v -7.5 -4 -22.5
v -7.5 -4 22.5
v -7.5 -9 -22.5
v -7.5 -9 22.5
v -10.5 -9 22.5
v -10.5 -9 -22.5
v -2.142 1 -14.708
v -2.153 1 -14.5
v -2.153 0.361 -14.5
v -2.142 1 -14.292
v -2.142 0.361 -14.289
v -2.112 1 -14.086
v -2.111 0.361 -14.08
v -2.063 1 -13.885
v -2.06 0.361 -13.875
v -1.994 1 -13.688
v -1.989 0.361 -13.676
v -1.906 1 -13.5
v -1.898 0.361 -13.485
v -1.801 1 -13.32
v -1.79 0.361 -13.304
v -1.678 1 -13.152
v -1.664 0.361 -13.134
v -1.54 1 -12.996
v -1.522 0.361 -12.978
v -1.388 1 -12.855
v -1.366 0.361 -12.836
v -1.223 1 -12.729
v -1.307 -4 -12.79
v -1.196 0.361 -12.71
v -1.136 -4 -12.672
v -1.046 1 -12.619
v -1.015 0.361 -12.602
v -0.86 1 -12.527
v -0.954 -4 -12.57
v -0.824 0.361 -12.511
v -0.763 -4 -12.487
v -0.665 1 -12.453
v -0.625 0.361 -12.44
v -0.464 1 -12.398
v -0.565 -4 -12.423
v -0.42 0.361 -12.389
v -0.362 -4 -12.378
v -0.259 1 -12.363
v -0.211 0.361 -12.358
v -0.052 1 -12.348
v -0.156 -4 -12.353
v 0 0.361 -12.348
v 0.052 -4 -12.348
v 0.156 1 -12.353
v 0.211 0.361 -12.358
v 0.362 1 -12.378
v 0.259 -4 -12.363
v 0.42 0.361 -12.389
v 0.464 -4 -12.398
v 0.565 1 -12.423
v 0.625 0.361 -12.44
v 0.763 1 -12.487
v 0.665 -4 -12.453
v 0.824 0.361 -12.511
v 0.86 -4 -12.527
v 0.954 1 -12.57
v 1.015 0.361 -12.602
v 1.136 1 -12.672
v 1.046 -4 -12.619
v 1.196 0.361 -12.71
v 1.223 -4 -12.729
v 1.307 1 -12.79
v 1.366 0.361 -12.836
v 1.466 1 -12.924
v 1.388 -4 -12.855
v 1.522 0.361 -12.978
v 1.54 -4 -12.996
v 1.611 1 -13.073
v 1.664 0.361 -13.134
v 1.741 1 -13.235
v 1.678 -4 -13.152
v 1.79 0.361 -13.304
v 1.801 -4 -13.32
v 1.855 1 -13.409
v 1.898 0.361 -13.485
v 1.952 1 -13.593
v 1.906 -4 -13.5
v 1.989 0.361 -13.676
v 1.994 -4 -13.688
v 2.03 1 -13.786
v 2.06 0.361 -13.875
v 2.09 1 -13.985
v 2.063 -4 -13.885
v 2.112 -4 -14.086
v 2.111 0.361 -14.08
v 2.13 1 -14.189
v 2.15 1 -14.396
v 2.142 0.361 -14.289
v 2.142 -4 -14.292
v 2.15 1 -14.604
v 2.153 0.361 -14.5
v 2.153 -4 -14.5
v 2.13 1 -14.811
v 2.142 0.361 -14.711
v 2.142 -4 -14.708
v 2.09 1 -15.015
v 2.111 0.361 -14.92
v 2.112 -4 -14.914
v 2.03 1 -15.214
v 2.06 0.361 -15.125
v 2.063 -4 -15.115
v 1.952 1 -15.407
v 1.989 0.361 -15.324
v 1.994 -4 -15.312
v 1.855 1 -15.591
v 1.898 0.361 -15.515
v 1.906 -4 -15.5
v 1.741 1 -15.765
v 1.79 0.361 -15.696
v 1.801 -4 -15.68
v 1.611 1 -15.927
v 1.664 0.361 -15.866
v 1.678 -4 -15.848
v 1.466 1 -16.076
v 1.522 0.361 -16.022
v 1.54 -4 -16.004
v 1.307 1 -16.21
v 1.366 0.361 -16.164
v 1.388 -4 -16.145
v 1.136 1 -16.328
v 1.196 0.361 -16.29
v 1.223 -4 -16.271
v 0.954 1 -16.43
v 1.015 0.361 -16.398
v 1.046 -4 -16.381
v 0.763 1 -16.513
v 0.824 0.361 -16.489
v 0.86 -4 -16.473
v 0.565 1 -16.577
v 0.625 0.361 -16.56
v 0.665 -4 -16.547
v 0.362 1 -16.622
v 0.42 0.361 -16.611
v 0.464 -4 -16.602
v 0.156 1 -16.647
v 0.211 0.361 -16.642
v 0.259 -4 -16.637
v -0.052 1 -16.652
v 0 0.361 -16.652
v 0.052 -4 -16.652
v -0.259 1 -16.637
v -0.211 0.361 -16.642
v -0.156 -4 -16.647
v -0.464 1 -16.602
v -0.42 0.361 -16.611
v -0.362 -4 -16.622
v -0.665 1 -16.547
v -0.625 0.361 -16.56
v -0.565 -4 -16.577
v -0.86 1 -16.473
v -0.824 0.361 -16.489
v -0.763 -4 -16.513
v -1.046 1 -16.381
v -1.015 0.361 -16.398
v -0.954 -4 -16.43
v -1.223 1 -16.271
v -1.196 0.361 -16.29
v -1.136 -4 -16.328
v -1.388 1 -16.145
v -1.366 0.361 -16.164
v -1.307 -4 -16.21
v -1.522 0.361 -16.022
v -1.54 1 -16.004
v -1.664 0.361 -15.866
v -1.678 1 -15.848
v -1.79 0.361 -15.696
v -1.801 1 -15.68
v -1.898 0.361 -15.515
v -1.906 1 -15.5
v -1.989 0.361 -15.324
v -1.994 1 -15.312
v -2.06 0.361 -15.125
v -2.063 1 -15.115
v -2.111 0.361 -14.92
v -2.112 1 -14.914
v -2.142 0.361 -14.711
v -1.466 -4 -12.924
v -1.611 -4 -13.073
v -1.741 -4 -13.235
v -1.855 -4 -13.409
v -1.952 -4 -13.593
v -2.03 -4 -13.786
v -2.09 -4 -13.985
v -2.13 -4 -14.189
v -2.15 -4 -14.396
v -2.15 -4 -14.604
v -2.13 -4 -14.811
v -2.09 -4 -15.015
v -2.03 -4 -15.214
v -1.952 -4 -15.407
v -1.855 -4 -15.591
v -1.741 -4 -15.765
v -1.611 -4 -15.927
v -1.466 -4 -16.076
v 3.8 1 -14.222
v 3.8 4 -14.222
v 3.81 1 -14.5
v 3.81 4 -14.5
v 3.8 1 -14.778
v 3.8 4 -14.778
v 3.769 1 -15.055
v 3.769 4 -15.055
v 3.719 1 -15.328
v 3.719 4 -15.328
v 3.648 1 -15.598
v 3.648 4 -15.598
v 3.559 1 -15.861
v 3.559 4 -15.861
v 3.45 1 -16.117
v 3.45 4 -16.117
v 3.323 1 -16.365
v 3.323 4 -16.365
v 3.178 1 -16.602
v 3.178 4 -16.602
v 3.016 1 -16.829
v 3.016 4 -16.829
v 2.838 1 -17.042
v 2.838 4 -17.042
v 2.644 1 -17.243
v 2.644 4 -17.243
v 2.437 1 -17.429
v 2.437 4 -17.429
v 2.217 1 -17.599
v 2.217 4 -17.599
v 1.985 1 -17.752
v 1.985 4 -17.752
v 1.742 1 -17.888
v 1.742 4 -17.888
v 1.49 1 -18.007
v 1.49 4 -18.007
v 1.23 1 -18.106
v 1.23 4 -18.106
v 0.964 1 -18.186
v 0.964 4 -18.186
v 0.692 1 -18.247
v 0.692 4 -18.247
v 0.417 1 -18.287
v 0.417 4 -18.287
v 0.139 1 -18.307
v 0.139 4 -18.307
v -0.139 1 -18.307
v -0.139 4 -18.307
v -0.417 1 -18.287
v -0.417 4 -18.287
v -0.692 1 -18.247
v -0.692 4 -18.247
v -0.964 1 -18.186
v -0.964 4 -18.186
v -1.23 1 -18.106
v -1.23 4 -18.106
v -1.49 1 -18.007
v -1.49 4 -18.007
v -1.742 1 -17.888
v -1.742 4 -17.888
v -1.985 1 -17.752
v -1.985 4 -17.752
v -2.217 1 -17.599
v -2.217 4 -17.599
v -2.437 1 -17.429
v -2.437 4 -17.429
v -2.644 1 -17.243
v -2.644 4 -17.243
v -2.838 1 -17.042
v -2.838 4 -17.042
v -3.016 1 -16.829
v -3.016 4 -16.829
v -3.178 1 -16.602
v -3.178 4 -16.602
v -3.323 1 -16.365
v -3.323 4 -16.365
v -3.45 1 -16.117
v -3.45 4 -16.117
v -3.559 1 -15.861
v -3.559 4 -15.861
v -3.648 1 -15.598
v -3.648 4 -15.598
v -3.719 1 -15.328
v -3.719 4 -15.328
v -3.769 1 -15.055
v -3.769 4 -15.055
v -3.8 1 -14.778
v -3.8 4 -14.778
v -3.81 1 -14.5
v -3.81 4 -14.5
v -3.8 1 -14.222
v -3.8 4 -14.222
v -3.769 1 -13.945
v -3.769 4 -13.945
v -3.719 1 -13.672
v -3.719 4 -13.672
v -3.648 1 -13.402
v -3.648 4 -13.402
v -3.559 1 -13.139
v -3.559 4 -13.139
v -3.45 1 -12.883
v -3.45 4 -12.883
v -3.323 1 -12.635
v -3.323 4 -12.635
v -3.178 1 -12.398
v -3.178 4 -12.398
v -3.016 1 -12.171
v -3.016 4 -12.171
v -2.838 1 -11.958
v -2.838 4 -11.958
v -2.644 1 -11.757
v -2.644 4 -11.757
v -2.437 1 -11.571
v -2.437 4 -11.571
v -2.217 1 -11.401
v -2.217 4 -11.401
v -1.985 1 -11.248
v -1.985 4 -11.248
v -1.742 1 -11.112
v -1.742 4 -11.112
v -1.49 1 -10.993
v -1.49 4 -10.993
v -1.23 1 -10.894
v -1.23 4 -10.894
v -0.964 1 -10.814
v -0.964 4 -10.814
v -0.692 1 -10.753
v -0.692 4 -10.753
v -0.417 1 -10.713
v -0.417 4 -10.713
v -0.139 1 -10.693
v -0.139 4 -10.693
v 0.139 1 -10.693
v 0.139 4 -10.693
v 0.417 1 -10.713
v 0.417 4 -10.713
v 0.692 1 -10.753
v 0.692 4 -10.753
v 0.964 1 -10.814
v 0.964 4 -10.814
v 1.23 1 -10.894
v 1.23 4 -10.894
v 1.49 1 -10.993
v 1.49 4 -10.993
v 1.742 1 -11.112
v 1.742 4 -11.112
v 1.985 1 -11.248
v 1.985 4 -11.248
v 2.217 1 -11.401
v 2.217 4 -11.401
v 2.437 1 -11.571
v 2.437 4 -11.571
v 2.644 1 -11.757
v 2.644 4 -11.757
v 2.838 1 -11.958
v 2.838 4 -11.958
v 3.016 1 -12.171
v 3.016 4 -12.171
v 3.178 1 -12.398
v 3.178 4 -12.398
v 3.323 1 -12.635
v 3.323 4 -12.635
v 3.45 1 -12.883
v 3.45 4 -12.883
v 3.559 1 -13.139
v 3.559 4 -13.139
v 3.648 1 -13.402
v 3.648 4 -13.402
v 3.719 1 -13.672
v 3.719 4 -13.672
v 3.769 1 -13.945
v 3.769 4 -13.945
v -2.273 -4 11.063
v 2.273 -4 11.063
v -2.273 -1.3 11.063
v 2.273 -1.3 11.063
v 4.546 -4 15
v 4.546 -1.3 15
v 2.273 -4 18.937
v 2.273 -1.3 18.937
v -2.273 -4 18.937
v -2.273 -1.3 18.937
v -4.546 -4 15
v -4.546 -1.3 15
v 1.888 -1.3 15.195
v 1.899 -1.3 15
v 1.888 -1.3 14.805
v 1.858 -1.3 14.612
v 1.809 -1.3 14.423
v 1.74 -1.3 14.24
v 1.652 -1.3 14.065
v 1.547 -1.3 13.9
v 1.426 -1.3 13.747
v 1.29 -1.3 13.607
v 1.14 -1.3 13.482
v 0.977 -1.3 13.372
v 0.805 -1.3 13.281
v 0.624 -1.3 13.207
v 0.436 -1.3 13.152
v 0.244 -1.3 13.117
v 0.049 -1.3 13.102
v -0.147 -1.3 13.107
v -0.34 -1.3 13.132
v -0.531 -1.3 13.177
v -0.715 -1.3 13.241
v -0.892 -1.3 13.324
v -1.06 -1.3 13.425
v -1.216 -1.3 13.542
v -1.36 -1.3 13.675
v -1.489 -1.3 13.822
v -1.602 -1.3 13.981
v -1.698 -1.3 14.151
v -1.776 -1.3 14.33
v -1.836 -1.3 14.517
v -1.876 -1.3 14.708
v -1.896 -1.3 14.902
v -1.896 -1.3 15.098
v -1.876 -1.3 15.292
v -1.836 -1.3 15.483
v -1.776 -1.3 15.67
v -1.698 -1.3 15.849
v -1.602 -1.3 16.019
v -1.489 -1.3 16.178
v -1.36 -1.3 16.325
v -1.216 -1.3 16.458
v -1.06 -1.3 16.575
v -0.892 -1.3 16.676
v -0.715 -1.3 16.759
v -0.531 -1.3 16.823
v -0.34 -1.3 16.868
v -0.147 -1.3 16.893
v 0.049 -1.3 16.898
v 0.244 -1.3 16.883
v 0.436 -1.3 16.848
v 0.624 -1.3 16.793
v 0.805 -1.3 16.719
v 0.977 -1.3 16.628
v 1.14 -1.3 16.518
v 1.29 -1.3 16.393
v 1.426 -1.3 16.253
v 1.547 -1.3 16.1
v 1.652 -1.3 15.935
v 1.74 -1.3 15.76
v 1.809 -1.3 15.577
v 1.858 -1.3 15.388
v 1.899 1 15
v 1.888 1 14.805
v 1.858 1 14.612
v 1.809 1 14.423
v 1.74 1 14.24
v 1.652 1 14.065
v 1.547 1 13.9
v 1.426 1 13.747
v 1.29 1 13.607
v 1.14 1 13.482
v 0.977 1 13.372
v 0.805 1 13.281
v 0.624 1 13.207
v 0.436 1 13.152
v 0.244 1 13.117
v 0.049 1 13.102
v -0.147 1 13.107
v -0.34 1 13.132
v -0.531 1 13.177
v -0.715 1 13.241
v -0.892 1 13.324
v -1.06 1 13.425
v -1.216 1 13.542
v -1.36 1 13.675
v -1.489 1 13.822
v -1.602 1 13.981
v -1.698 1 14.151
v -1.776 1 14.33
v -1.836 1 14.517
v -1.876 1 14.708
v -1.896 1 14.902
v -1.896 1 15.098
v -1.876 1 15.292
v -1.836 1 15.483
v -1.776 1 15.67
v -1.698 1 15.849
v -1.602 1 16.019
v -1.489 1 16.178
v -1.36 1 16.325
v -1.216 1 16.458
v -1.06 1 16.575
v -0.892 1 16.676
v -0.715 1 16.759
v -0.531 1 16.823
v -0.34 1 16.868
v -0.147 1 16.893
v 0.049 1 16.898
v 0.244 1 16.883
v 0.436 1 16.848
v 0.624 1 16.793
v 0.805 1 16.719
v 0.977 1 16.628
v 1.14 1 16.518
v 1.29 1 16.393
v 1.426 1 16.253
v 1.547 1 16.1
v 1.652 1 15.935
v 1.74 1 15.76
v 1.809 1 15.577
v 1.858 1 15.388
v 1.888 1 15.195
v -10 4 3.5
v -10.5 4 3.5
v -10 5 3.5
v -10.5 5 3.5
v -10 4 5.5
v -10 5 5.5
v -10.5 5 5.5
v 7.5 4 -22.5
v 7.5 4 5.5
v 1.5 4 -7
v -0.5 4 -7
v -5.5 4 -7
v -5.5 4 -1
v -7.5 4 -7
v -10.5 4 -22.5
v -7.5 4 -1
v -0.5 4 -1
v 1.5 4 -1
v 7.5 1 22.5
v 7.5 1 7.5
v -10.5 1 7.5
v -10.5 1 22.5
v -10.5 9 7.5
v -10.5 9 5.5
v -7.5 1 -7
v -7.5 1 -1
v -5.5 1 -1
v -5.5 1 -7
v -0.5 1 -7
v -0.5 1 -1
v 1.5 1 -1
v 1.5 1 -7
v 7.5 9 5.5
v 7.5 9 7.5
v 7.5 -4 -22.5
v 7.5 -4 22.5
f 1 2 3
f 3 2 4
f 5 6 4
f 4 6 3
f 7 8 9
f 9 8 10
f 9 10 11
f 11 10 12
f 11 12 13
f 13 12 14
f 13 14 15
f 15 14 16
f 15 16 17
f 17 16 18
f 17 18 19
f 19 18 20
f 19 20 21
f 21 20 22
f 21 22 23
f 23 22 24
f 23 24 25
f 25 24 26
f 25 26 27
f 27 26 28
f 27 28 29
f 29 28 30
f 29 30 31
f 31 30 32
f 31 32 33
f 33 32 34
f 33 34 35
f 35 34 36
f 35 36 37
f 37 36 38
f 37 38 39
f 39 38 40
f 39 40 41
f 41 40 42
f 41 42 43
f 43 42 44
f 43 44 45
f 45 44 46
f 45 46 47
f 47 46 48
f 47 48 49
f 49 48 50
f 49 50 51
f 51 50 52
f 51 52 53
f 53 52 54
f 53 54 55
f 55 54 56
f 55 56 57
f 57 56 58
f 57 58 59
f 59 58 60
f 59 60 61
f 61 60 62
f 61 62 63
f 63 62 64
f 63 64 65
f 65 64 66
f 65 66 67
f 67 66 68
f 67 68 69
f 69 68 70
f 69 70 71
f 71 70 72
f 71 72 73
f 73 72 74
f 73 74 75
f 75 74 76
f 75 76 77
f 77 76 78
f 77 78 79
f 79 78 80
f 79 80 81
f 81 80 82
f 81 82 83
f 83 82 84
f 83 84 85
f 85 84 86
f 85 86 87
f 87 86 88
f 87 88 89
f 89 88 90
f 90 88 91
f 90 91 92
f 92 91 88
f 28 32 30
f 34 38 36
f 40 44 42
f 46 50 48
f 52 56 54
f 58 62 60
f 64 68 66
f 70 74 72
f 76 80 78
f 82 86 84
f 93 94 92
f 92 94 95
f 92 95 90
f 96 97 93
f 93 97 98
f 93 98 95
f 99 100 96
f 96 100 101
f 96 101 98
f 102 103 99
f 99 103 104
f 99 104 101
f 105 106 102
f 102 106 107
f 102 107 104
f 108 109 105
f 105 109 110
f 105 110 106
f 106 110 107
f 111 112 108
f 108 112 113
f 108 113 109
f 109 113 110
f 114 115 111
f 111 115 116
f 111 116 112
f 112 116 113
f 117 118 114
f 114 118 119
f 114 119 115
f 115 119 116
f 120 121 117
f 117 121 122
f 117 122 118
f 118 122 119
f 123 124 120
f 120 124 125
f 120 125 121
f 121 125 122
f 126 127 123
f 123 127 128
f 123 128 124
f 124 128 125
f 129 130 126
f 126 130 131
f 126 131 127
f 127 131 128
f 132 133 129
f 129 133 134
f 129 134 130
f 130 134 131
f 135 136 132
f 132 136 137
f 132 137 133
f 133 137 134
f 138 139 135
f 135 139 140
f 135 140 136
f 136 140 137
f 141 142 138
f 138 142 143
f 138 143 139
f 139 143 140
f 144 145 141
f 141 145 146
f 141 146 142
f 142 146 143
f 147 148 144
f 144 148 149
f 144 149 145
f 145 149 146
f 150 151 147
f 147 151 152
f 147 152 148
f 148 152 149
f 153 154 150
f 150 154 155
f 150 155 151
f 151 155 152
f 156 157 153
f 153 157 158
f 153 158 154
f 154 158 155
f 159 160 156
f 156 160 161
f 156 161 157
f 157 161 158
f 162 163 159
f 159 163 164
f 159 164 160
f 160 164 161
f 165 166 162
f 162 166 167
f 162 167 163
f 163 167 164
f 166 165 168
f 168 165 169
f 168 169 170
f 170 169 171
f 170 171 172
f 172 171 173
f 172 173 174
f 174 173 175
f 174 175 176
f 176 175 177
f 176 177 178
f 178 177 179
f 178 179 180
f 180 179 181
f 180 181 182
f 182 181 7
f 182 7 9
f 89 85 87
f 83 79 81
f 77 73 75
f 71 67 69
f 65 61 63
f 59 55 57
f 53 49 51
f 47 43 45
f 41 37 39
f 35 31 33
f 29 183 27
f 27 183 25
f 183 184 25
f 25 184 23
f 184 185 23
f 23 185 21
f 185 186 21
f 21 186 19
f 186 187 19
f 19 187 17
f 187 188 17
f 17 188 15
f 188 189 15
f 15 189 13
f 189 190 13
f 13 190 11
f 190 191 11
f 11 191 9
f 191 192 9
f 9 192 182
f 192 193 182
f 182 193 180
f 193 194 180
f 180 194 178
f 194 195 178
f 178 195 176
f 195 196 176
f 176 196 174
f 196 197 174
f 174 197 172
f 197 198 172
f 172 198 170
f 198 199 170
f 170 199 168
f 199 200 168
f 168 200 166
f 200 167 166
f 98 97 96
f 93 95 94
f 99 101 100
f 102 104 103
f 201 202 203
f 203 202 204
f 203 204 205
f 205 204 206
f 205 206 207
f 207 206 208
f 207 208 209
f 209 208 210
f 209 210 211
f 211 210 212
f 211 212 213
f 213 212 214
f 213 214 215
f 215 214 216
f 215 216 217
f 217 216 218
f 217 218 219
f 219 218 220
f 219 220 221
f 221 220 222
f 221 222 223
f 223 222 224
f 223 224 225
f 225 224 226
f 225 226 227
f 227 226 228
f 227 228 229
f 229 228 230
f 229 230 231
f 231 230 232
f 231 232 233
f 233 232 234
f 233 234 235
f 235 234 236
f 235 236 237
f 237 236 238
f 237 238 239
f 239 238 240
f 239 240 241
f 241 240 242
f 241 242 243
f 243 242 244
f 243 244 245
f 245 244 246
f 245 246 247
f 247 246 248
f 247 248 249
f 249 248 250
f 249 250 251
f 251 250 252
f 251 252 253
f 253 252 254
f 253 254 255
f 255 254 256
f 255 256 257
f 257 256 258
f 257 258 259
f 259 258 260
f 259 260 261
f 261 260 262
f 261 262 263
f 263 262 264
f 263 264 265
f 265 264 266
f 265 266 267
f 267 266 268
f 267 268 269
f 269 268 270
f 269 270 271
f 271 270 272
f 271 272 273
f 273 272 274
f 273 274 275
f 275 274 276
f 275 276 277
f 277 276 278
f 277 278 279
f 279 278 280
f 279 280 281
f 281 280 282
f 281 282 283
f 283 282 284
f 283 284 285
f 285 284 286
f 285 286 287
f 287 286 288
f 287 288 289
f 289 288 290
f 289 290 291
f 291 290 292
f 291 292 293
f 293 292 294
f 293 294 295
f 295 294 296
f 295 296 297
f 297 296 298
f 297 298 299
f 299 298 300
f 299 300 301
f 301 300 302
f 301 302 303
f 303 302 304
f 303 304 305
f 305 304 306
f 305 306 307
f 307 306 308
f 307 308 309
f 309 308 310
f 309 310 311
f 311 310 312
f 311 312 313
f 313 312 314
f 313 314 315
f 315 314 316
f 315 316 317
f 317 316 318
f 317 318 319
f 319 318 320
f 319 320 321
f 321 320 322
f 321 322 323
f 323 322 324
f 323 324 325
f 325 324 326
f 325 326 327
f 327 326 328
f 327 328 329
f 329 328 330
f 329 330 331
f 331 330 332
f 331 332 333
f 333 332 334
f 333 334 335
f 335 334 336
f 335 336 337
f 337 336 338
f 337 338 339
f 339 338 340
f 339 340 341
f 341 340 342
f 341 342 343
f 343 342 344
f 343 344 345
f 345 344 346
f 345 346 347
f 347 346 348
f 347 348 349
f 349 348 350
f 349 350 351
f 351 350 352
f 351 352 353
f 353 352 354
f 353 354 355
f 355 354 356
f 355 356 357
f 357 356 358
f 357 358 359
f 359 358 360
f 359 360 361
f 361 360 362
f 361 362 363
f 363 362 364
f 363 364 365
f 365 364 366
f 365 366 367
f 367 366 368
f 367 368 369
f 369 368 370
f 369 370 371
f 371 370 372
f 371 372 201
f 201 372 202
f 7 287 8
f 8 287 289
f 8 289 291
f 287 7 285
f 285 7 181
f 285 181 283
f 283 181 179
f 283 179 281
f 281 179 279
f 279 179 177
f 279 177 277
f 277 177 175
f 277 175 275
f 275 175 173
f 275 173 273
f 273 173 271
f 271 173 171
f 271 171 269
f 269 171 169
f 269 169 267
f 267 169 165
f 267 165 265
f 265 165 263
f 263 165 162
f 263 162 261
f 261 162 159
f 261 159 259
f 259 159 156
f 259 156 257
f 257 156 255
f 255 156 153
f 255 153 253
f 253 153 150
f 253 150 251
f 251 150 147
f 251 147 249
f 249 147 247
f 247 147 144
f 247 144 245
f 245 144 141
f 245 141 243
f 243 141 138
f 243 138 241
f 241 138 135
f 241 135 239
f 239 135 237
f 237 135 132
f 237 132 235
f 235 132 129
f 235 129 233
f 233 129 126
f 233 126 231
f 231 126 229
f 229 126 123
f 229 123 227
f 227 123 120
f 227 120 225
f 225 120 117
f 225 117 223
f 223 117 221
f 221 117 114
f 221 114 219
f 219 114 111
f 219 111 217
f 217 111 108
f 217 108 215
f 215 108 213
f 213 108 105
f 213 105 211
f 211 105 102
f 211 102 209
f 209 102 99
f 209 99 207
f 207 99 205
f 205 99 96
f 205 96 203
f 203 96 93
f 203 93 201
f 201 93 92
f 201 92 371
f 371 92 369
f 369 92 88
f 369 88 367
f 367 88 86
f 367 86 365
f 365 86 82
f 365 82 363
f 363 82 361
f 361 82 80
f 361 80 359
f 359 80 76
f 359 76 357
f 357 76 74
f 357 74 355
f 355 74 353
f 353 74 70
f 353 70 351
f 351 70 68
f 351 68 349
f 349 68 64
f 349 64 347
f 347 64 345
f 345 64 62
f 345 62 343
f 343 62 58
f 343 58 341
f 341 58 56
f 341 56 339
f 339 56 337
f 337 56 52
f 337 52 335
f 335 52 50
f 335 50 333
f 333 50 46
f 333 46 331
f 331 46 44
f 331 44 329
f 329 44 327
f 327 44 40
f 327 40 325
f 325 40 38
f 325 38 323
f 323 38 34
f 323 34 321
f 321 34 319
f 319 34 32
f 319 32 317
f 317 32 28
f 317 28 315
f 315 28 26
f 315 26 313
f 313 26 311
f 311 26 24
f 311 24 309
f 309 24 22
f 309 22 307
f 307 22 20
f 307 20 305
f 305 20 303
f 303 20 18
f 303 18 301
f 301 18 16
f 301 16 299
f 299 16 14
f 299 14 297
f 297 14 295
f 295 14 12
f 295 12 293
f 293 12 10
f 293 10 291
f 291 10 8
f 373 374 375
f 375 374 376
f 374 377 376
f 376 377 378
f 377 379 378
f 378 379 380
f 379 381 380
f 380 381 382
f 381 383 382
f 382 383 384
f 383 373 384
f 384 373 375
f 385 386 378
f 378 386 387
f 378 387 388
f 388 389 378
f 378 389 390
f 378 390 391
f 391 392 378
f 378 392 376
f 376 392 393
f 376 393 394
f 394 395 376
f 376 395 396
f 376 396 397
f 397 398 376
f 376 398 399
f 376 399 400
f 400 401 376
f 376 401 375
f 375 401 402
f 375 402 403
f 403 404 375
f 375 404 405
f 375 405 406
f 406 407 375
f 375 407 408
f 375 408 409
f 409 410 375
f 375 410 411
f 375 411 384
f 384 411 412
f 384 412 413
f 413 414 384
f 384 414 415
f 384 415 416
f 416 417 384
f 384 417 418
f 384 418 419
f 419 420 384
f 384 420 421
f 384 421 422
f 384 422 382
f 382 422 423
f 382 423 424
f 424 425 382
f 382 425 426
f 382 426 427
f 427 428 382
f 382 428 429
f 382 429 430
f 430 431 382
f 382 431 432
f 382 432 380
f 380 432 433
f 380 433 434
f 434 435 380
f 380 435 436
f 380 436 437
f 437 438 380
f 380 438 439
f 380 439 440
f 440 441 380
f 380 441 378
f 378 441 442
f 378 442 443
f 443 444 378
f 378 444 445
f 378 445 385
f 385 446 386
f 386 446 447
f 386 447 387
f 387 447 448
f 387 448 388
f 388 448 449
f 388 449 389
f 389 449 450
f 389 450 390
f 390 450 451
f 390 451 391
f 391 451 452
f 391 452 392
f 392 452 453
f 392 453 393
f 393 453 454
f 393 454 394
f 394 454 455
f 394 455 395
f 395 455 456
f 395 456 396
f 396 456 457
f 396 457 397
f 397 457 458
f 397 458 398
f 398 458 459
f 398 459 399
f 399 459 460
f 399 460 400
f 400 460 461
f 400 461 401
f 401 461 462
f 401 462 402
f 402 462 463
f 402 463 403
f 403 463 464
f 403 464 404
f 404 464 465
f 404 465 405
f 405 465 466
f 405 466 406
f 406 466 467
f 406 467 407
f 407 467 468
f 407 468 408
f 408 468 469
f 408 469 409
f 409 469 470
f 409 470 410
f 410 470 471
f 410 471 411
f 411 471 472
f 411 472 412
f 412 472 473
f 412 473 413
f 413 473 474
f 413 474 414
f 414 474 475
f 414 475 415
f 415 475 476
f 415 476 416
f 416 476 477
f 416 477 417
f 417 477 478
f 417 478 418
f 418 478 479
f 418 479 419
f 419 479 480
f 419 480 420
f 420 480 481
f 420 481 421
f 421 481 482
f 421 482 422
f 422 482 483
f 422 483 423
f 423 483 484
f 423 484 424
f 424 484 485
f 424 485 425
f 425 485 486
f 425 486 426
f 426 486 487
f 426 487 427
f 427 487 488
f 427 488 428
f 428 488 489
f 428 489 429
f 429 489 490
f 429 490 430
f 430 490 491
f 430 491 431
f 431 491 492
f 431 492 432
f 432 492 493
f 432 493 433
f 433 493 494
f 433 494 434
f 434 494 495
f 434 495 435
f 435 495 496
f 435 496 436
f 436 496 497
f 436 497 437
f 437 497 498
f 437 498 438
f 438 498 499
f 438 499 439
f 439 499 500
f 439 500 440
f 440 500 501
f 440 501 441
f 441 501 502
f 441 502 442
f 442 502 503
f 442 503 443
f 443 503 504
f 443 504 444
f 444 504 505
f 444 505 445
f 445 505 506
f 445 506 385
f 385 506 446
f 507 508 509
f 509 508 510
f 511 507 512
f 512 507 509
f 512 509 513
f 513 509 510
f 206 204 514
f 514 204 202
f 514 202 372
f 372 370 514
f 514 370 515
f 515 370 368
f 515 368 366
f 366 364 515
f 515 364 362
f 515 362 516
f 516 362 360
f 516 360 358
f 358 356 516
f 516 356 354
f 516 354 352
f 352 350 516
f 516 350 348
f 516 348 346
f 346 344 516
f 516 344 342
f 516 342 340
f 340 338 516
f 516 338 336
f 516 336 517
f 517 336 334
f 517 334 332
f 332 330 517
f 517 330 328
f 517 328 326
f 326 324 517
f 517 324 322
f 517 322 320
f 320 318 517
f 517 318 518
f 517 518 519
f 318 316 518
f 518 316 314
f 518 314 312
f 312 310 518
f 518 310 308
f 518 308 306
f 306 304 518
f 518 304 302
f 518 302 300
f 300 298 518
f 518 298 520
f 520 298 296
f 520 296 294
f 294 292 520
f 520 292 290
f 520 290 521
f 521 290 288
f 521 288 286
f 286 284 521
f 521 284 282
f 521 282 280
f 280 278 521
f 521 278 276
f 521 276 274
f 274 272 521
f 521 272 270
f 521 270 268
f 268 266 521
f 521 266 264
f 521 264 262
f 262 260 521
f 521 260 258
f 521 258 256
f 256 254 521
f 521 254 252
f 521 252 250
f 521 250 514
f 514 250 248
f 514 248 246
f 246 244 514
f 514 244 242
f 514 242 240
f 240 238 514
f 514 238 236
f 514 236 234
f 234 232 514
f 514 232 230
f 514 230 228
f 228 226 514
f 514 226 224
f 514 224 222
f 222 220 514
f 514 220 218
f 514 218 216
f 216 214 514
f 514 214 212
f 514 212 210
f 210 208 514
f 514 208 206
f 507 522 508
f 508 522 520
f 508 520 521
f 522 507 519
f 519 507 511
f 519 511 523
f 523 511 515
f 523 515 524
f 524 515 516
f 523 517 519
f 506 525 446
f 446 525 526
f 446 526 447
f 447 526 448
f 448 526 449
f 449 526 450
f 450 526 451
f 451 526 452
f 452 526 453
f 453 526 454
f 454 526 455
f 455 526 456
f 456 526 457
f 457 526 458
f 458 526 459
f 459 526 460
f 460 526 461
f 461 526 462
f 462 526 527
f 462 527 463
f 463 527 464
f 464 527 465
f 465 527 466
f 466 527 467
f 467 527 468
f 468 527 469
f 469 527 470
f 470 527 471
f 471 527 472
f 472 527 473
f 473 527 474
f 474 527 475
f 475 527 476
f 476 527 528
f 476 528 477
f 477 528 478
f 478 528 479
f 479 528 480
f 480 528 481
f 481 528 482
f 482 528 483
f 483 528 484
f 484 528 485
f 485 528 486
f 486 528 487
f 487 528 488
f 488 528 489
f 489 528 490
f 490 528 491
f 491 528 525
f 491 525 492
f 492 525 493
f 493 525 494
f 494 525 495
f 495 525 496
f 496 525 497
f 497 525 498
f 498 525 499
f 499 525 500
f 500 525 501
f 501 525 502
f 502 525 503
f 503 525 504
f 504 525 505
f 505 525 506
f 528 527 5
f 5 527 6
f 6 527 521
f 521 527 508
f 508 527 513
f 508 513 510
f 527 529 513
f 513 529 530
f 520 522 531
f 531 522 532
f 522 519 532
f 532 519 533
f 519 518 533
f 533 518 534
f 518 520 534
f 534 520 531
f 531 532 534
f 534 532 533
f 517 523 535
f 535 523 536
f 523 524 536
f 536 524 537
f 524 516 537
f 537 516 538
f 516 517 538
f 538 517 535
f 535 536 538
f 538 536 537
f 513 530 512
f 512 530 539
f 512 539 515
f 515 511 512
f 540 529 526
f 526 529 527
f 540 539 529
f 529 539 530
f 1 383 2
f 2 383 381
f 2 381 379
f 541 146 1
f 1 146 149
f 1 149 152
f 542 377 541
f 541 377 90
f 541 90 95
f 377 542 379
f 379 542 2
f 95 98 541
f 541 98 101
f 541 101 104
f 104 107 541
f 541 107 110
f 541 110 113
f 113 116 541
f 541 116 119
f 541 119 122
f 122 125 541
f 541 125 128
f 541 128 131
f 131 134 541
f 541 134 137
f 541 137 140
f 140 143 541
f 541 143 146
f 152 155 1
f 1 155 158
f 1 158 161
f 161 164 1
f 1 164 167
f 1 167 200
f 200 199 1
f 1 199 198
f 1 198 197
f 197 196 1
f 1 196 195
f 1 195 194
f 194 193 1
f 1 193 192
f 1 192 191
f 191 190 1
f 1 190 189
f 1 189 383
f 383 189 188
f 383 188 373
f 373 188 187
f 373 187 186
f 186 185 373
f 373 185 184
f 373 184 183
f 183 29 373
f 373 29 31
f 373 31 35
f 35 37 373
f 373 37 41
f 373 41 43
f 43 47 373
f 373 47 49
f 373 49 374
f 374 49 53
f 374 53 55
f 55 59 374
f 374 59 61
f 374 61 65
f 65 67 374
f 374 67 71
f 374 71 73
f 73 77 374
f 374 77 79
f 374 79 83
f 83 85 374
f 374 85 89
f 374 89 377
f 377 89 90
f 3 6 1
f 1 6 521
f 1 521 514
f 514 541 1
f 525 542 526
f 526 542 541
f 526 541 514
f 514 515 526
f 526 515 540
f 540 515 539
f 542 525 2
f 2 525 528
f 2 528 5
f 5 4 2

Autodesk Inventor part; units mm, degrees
ref_plane "YZ Plane" through (0, 0, 0) normal (1, 0, 0) x (0, 1, 0)
ref_plane "XZ Plane" through (0, 0, 0) normal (0, 1, 0) x (-1, 0, 0)
ref_plane "XY Plane" through (0, 0, 0) normal (0, 0, 1) x (1, 0, 0)
sketch "Sketch1" plane through (0, 0, 0) normal (0, 1, 0) x (-1, 0, 0)
  line L0 (-7.5, 22.5) -> (10.5, 22.5)
  line L1 (10.5, 22.5) -> (10.5, -22.5)
  line L2 (10.5, -22.5) -> (-7.5, -22.5)
  line L3 (-7.5, -22.5) -> (-7.5, 22.5)
  point P0 (0, 0)
  point P1 (-7.5, 0)
  dimension "d0" = 45
  dimension "d1" = 18
  dimension "d97" = 7.5
extrude "Extrusion1" add sketch "Sketch1" along normal mid plane 8
sketch "Sketch4" plane through (0, 4, 0) normal (0, 1, 0) x (1, 0, 0)
  line L0 (-10.5, -7.5) -> (7.5, -7.5)
  line L1 (7.5, -7.5) -> (7.5, -5.5)
  line L2 (7.5, -5.5) -> (-10.5, -5.5)
  line L3 (-10.5, -5.5) -> (-10.5, -7.5)
  line L4 (-10.5, -22.5) -> (7.5, -22.5) projected
  line L5 (-10.5, 22.5) -> (-10.5, -22.5) projected
  line L6 (7.5, -22.5) -> (7.5, 22.5) projected
  dimension "d57" = 2
  dimension "d58" = 15
extrude "Extrusion3" add sketch "Sketch4" along normal blind 5 contours L3 L2 L1 L0
sketch "Sketch5" plane through (0, 4, 0) normal (0, 1, 0) x (1, 0, 0)
  line L0 (-7.5, 7) -> (-5.5, 7)
  line L1 (-5.5, 7) -> (-5.5, 1)
  line L2 (-5.5, 1) -> (-7.5, 1)
  line L3 (-7.5, 1) -> (-7.5, 7)
  line L4 (1.5, 7) -> (-0.5, 7)
  line L5 (-0.5, 7) -> (-0.5, 1)
  line L6 (-0.5, 1) -> (1.5, 1)
  line L7 (1.5, 1) -> (1.5, 7)
  line L8 (-6.5, 4) -> (0.5, 4) construction
  line L9 (7.5, -5.5) -> (-7.5, -5.5) construction
  line L10 (-7.5, 7.8654) -> (-7.5, -0.5) construction
  line L11 (-7.5, -0.5) -> (-22.5, -0.5) construction
  line L12 (7.5, -5.5) -> (-10.5, -5.5) projected
  line L13 (7.5, 22.5) -> (-10.5, 22.5) projected
  line L14 (-10.5, 22.5) -> (-10.5, -5.5) projected
  point P0 (0, -5.5)
  point P1 (0.5, 7)
  point P2 (-6.5, 7)
  point P3 (-5.5, 4)
  point P4 (0, 0)
  point P5 (-3, 4)
  point P6 (-1.5, 22.5)
  dimension "d20" = 6
  dimension "d21" = 2
  dimension "d22" = 5
  dimension "d26" = 1.5
  dimension "d31" = 7
  dimension "d103" = 7.5
extrude "Extrusion4" cut sketch "Sketch5" against normal blind 3
sketch "Sketch7" plane through (-10.5, -4, -12.5) normal (-1, 0, 0) x (0, 0, 1)
  line L0 (20, 8) -> (35, 8) projected
  line L1 (20, 8) -> (35, 8)
  line L2 (35, 8) -> (35, 5)
  line L3 (35, 5) -> (20, 5)
  line L4 (20, 5) -> (20, 8)
  line L5 (35, 8) -> (35, 0) projected
  point P0 (12.5, 4)
  dimension "d59" = 3
extrude "Extrusion6" cut sketch "Sketch7" against normal through all
sketch "Sketch8" plane through (0, 4, 0) normal (0, 1, 0) x (1, 0, 0)
  line L0 (-10.5, -5.5) -> (-10, -5.5)
  line L1 (-10, -5.5) -> (-10, -3.5)
  line L2 (-10, -3.5) -> (-10.5, -3.5)
  line L3 (-10.5, -3.5) -> (-10.5, -5.5)
  dimension "d60" = 2
  dimension "d61" = 0.5
extrude "Extrusion7" add sketch "Sketch8" along normal blind 1
sketch "Sketch13" plane through (-10.5, 1, 22.5) normal (0, 1, 0) x (1, 0, 0)
  line L0 (18, 15) -> (18, 0) projected
  point P0 (10.5, 22.5)
  point P1 (10.5, 7.5)
  point P2 (18, 7.5)
hole "Hole3" at (0, 1, 15) direction (0, -1, 0) diameter 3.797 end through all clearance for "Flat Head Machine Screw (82)" size "#6" standard "Ansi Unified Screw Threads"
sketch "Sketch12" plane through (0, -4, 0) normal (0, -1, 0) x (1, 0, 0)
  line L0 (7.5, 22.5) -> (-10.5, 22.5) projected
  line L1 (-2.273, 11.063) -> (-4.5461, 15)
  line L2 (-4.5461, 15) -> (-2.273, 18.937)
  line L3 (-2.273, 18.937) -> (2.273, 18.937)
  line L4 (2.273, 18.937) -> (4.5461, 15)
  line L5 (4.5461, 15) -> (2.273, 11.063)
  line L6 (2.273, 11.063) -> (-2.273, 11.063)
  circle A0 centre (0, 15) radius 1.8985 projected
  point P0 (0, 0)
  dimension "d98" = 7.874
extrude "Extrusion10" cut sketch "Sketch12" against normal blind 2.7
sketch "Sketch14" plane through (0, 4, 0) normal (0, 1, 0) x (1, 0, 0)
  circle A0 centre (0, 14.5) radius 3.81
  line L0 (7.5, 22.5) -> (-10.5, 22.5) projected
  point P0 (0, 0)
  dimension "d95" = 7.62
  dimension "d96" = 8
extrude "Extrusion11" cut sketch "Sketch14" against normal blind 3
sketch "Sketch15" plane through (0, -4, 0) normal (0, -1, 0) x (1, 0, 0)
  line L0 (-10.5, -22.5) -> (7.5, -22.5) projected
  point P0 (0, 0)
  point P1 (0, -14.5)
  dimension "d87" = 8
hole "Hole4" at (0, -4, -14.5) direction (0, 1, 0) diameter 4.305 end through all clearance for "Flat Head Machine Screw (82)" size "#6" standard "Ansi Unified Screw Threads"
sketch "Sketch16" plane through (0, -4, 0) normal (0, -1, 0) x (1, 0, 0)
  line L0 (7.5, 22.5) -> (-10.5, 22.5) projected
  line L1 (-10.5, 22.5) -> (-7.5, 22.5)
  line L2 (-7.5, 22.5) -> (-7.5, -22.5)
  line L3 (-7.5, -22.5) -> (-10.5, -22.5)
  line L4 (-10.5, -22.5) -> (-10.5, 22.5)
  line L5 (-10.5, -22.5) -> (7.5, -22.5) projected
  line L6 (7.5, -22.5) -> (7.5, 22.5) projected
  point P0 (0, 0)
  dimension "d102" = 15
extrude "Extrusion12" add sketch "Sketch16" along normal blind 5 contours L2 L3 L4 L0
properties part number "FixedFiber"
